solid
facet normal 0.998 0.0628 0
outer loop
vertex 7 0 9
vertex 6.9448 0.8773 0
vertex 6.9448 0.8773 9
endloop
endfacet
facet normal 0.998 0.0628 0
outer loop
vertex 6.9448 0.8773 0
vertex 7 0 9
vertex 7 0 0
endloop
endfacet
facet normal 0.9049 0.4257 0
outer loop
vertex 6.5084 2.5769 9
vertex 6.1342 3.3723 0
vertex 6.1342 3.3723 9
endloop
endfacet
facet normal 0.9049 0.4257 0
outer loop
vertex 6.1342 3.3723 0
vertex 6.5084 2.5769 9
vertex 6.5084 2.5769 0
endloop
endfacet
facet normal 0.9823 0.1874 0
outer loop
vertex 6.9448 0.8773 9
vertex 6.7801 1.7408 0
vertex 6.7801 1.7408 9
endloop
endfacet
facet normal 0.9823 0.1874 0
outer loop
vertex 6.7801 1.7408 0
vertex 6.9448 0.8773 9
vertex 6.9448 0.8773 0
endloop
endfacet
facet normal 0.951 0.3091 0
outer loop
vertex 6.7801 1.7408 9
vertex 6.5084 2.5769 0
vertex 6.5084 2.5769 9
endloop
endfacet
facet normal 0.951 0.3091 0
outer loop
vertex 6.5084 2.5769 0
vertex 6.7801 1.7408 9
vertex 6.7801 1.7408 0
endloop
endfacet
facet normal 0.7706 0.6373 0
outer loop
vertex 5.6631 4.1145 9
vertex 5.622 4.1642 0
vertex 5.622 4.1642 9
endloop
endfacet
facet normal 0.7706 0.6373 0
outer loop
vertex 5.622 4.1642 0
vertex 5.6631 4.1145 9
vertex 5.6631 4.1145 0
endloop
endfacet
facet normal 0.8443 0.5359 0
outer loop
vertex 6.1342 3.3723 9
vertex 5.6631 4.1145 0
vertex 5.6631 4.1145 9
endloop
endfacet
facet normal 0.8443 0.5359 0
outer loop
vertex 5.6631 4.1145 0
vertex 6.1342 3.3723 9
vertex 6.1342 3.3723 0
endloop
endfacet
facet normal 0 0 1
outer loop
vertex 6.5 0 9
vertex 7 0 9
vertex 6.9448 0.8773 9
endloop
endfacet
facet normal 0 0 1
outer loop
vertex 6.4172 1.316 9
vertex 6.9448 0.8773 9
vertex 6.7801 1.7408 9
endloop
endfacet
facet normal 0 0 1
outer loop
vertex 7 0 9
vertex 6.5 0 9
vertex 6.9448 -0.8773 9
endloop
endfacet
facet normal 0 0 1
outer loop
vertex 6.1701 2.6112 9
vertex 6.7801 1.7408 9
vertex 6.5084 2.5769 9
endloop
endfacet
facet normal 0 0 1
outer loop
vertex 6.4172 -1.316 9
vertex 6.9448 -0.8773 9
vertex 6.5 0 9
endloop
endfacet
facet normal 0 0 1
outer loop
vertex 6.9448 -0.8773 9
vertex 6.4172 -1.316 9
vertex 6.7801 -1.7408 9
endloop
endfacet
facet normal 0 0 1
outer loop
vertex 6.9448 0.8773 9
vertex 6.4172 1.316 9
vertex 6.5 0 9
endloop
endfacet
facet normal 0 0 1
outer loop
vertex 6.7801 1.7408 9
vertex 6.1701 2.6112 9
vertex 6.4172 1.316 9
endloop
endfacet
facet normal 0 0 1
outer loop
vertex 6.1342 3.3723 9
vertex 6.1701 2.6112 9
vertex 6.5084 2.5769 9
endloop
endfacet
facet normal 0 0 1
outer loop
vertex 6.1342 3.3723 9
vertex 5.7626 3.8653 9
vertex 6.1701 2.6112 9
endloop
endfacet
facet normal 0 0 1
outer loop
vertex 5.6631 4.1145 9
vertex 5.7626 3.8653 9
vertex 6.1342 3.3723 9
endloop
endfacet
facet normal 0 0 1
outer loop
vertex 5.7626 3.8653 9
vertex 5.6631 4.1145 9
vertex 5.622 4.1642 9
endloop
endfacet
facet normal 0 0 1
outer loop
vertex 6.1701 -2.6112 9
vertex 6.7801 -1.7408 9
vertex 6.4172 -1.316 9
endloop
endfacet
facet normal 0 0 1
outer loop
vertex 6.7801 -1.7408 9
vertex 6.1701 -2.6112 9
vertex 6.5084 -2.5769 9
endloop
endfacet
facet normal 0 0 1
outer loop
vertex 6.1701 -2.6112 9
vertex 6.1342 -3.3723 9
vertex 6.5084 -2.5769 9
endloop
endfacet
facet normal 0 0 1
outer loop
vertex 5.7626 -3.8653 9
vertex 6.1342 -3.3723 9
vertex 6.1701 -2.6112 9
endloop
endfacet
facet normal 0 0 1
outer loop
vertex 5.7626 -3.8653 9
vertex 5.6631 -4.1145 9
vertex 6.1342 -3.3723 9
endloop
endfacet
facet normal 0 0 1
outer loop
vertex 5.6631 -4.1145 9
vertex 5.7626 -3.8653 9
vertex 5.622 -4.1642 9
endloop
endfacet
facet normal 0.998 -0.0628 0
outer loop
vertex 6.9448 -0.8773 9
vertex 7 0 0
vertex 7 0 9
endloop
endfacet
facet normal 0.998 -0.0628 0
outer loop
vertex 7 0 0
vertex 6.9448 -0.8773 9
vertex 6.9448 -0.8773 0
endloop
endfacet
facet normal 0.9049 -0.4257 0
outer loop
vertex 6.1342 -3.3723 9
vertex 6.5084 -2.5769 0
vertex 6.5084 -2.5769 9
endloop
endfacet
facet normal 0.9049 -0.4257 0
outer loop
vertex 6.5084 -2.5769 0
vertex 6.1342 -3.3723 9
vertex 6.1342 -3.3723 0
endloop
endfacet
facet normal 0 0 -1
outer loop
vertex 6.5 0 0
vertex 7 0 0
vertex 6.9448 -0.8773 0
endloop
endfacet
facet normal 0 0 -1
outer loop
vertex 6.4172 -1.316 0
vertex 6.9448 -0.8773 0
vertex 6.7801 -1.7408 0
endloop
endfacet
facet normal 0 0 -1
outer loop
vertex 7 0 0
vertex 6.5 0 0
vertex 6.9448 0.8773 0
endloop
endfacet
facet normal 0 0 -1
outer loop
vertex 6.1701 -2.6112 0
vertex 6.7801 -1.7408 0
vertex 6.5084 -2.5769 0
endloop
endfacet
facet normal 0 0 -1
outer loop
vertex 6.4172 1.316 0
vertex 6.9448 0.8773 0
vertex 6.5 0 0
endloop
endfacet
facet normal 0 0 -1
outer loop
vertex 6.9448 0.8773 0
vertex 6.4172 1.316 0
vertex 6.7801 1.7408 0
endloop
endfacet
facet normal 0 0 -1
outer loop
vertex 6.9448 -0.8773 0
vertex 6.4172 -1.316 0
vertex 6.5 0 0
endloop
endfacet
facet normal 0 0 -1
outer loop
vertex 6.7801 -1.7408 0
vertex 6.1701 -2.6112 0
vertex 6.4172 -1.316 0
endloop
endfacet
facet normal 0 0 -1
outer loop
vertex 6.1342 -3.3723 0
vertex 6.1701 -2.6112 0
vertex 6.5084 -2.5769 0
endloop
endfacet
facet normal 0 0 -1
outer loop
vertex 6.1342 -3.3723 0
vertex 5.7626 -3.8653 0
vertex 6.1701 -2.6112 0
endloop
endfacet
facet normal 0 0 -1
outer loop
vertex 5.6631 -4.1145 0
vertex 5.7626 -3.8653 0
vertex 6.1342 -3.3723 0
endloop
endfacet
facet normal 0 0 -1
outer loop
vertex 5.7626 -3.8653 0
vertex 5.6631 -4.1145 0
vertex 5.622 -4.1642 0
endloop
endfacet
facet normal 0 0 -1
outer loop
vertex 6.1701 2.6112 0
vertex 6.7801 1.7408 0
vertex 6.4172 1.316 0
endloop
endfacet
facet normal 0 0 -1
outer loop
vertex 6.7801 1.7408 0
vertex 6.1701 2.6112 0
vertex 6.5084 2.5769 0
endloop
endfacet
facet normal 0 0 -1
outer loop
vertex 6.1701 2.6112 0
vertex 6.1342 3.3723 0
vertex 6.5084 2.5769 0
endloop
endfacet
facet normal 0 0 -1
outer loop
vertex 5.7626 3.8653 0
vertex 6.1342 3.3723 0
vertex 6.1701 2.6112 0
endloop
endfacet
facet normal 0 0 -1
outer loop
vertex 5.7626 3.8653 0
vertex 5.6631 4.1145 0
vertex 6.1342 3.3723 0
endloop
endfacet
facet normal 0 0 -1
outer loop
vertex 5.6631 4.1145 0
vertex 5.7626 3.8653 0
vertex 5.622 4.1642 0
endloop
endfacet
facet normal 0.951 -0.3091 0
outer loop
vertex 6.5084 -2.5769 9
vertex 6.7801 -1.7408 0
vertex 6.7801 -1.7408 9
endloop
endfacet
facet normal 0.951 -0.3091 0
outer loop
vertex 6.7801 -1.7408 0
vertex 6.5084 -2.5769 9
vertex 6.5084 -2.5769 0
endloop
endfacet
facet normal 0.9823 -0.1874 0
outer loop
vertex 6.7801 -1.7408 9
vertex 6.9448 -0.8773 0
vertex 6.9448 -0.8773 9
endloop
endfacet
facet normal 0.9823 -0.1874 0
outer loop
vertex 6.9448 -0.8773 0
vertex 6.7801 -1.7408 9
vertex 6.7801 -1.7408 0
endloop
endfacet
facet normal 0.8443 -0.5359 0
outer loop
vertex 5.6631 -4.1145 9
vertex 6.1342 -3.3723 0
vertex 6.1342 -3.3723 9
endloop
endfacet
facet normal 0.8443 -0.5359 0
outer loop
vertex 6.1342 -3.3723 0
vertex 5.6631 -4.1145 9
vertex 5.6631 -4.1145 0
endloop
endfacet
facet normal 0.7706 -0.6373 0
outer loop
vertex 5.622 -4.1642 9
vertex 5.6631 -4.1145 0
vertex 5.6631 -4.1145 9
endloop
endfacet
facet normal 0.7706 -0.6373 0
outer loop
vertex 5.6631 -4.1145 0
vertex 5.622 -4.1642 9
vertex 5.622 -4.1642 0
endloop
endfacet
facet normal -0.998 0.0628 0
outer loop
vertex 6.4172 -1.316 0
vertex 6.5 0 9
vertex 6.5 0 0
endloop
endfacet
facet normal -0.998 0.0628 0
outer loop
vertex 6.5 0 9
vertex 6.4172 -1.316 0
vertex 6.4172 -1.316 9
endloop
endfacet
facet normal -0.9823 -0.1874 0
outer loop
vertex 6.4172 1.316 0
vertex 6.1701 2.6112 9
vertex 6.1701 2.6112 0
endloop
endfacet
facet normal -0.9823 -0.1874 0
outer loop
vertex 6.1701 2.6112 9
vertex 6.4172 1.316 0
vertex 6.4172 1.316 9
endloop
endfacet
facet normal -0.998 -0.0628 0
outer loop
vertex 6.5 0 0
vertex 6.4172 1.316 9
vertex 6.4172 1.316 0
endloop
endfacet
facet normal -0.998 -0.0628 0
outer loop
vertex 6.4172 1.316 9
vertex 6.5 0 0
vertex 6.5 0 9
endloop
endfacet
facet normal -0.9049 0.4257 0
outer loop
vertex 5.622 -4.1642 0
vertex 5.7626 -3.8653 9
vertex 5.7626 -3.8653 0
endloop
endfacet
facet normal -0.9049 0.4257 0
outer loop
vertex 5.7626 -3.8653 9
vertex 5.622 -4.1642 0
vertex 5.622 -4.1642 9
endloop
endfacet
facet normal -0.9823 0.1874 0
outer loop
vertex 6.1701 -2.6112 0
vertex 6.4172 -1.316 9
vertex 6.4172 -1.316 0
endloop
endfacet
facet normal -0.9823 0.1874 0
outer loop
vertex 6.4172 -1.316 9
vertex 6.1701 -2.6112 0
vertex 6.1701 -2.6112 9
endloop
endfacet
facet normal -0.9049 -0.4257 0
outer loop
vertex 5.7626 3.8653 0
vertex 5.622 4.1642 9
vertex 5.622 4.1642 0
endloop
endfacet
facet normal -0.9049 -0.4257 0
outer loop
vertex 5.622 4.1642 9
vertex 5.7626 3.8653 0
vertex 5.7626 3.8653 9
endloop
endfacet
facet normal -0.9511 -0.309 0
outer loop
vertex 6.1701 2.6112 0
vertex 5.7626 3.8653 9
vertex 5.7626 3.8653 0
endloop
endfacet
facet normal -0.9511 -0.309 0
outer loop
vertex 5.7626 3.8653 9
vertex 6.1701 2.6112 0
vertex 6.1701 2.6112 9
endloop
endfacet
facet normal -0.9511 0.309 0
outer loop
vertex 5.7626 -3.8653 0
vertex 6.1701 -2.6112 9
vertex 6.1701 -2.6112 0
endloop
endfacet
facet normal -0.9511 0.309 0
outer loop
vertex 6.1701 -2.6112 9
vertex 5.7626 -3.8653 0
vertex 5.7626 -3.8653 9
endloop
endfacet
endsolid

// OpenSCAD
$fn = 50;


difference() {
	union() {
		cylinder(h = 9, r = 7.0000000000);
		translate(v = [-7.0000000000, 0, 0]) {
			cylinder(h = 9, r = 7.0000000000);
		}
	}
	union() {
		cylinder(h = 9, r = 3.2500000000);
		cylinder(h = 9, r = 1.8000000000);
		cylinder(h = 9, r = 1.8000000000);
		cylinder(h = 9, r = 1.8000000000);
		translate(v = [-11.5000000000, 0, 0]) {
			hull() {
				translate(v = [-3.7500000000, 0.0000000000, 0]) {
					cylinder(h = 9, r = 10.5000000000);
				}
				translate(v = [3.7500000000, 0.0000000000, 0]) {
					cylinder(h = 9, r = 10.5000000000);
				}
				translate(v = [-3.7500000000, -0.0000000000, 0]) {
					cylinder(h = 9, r = 10.5000000000);
				}
				translate(v = [3.7500000000, -0.0000000000, 0]) {
					cylinder(h = 9, r = 10.5000000000);
				}
			}
		}
		translate(v = [-4.0000000000, 0, 0.0000000000]) {
			cylinder(h = 9, r = 10.5000000000);
		}
	}
}
